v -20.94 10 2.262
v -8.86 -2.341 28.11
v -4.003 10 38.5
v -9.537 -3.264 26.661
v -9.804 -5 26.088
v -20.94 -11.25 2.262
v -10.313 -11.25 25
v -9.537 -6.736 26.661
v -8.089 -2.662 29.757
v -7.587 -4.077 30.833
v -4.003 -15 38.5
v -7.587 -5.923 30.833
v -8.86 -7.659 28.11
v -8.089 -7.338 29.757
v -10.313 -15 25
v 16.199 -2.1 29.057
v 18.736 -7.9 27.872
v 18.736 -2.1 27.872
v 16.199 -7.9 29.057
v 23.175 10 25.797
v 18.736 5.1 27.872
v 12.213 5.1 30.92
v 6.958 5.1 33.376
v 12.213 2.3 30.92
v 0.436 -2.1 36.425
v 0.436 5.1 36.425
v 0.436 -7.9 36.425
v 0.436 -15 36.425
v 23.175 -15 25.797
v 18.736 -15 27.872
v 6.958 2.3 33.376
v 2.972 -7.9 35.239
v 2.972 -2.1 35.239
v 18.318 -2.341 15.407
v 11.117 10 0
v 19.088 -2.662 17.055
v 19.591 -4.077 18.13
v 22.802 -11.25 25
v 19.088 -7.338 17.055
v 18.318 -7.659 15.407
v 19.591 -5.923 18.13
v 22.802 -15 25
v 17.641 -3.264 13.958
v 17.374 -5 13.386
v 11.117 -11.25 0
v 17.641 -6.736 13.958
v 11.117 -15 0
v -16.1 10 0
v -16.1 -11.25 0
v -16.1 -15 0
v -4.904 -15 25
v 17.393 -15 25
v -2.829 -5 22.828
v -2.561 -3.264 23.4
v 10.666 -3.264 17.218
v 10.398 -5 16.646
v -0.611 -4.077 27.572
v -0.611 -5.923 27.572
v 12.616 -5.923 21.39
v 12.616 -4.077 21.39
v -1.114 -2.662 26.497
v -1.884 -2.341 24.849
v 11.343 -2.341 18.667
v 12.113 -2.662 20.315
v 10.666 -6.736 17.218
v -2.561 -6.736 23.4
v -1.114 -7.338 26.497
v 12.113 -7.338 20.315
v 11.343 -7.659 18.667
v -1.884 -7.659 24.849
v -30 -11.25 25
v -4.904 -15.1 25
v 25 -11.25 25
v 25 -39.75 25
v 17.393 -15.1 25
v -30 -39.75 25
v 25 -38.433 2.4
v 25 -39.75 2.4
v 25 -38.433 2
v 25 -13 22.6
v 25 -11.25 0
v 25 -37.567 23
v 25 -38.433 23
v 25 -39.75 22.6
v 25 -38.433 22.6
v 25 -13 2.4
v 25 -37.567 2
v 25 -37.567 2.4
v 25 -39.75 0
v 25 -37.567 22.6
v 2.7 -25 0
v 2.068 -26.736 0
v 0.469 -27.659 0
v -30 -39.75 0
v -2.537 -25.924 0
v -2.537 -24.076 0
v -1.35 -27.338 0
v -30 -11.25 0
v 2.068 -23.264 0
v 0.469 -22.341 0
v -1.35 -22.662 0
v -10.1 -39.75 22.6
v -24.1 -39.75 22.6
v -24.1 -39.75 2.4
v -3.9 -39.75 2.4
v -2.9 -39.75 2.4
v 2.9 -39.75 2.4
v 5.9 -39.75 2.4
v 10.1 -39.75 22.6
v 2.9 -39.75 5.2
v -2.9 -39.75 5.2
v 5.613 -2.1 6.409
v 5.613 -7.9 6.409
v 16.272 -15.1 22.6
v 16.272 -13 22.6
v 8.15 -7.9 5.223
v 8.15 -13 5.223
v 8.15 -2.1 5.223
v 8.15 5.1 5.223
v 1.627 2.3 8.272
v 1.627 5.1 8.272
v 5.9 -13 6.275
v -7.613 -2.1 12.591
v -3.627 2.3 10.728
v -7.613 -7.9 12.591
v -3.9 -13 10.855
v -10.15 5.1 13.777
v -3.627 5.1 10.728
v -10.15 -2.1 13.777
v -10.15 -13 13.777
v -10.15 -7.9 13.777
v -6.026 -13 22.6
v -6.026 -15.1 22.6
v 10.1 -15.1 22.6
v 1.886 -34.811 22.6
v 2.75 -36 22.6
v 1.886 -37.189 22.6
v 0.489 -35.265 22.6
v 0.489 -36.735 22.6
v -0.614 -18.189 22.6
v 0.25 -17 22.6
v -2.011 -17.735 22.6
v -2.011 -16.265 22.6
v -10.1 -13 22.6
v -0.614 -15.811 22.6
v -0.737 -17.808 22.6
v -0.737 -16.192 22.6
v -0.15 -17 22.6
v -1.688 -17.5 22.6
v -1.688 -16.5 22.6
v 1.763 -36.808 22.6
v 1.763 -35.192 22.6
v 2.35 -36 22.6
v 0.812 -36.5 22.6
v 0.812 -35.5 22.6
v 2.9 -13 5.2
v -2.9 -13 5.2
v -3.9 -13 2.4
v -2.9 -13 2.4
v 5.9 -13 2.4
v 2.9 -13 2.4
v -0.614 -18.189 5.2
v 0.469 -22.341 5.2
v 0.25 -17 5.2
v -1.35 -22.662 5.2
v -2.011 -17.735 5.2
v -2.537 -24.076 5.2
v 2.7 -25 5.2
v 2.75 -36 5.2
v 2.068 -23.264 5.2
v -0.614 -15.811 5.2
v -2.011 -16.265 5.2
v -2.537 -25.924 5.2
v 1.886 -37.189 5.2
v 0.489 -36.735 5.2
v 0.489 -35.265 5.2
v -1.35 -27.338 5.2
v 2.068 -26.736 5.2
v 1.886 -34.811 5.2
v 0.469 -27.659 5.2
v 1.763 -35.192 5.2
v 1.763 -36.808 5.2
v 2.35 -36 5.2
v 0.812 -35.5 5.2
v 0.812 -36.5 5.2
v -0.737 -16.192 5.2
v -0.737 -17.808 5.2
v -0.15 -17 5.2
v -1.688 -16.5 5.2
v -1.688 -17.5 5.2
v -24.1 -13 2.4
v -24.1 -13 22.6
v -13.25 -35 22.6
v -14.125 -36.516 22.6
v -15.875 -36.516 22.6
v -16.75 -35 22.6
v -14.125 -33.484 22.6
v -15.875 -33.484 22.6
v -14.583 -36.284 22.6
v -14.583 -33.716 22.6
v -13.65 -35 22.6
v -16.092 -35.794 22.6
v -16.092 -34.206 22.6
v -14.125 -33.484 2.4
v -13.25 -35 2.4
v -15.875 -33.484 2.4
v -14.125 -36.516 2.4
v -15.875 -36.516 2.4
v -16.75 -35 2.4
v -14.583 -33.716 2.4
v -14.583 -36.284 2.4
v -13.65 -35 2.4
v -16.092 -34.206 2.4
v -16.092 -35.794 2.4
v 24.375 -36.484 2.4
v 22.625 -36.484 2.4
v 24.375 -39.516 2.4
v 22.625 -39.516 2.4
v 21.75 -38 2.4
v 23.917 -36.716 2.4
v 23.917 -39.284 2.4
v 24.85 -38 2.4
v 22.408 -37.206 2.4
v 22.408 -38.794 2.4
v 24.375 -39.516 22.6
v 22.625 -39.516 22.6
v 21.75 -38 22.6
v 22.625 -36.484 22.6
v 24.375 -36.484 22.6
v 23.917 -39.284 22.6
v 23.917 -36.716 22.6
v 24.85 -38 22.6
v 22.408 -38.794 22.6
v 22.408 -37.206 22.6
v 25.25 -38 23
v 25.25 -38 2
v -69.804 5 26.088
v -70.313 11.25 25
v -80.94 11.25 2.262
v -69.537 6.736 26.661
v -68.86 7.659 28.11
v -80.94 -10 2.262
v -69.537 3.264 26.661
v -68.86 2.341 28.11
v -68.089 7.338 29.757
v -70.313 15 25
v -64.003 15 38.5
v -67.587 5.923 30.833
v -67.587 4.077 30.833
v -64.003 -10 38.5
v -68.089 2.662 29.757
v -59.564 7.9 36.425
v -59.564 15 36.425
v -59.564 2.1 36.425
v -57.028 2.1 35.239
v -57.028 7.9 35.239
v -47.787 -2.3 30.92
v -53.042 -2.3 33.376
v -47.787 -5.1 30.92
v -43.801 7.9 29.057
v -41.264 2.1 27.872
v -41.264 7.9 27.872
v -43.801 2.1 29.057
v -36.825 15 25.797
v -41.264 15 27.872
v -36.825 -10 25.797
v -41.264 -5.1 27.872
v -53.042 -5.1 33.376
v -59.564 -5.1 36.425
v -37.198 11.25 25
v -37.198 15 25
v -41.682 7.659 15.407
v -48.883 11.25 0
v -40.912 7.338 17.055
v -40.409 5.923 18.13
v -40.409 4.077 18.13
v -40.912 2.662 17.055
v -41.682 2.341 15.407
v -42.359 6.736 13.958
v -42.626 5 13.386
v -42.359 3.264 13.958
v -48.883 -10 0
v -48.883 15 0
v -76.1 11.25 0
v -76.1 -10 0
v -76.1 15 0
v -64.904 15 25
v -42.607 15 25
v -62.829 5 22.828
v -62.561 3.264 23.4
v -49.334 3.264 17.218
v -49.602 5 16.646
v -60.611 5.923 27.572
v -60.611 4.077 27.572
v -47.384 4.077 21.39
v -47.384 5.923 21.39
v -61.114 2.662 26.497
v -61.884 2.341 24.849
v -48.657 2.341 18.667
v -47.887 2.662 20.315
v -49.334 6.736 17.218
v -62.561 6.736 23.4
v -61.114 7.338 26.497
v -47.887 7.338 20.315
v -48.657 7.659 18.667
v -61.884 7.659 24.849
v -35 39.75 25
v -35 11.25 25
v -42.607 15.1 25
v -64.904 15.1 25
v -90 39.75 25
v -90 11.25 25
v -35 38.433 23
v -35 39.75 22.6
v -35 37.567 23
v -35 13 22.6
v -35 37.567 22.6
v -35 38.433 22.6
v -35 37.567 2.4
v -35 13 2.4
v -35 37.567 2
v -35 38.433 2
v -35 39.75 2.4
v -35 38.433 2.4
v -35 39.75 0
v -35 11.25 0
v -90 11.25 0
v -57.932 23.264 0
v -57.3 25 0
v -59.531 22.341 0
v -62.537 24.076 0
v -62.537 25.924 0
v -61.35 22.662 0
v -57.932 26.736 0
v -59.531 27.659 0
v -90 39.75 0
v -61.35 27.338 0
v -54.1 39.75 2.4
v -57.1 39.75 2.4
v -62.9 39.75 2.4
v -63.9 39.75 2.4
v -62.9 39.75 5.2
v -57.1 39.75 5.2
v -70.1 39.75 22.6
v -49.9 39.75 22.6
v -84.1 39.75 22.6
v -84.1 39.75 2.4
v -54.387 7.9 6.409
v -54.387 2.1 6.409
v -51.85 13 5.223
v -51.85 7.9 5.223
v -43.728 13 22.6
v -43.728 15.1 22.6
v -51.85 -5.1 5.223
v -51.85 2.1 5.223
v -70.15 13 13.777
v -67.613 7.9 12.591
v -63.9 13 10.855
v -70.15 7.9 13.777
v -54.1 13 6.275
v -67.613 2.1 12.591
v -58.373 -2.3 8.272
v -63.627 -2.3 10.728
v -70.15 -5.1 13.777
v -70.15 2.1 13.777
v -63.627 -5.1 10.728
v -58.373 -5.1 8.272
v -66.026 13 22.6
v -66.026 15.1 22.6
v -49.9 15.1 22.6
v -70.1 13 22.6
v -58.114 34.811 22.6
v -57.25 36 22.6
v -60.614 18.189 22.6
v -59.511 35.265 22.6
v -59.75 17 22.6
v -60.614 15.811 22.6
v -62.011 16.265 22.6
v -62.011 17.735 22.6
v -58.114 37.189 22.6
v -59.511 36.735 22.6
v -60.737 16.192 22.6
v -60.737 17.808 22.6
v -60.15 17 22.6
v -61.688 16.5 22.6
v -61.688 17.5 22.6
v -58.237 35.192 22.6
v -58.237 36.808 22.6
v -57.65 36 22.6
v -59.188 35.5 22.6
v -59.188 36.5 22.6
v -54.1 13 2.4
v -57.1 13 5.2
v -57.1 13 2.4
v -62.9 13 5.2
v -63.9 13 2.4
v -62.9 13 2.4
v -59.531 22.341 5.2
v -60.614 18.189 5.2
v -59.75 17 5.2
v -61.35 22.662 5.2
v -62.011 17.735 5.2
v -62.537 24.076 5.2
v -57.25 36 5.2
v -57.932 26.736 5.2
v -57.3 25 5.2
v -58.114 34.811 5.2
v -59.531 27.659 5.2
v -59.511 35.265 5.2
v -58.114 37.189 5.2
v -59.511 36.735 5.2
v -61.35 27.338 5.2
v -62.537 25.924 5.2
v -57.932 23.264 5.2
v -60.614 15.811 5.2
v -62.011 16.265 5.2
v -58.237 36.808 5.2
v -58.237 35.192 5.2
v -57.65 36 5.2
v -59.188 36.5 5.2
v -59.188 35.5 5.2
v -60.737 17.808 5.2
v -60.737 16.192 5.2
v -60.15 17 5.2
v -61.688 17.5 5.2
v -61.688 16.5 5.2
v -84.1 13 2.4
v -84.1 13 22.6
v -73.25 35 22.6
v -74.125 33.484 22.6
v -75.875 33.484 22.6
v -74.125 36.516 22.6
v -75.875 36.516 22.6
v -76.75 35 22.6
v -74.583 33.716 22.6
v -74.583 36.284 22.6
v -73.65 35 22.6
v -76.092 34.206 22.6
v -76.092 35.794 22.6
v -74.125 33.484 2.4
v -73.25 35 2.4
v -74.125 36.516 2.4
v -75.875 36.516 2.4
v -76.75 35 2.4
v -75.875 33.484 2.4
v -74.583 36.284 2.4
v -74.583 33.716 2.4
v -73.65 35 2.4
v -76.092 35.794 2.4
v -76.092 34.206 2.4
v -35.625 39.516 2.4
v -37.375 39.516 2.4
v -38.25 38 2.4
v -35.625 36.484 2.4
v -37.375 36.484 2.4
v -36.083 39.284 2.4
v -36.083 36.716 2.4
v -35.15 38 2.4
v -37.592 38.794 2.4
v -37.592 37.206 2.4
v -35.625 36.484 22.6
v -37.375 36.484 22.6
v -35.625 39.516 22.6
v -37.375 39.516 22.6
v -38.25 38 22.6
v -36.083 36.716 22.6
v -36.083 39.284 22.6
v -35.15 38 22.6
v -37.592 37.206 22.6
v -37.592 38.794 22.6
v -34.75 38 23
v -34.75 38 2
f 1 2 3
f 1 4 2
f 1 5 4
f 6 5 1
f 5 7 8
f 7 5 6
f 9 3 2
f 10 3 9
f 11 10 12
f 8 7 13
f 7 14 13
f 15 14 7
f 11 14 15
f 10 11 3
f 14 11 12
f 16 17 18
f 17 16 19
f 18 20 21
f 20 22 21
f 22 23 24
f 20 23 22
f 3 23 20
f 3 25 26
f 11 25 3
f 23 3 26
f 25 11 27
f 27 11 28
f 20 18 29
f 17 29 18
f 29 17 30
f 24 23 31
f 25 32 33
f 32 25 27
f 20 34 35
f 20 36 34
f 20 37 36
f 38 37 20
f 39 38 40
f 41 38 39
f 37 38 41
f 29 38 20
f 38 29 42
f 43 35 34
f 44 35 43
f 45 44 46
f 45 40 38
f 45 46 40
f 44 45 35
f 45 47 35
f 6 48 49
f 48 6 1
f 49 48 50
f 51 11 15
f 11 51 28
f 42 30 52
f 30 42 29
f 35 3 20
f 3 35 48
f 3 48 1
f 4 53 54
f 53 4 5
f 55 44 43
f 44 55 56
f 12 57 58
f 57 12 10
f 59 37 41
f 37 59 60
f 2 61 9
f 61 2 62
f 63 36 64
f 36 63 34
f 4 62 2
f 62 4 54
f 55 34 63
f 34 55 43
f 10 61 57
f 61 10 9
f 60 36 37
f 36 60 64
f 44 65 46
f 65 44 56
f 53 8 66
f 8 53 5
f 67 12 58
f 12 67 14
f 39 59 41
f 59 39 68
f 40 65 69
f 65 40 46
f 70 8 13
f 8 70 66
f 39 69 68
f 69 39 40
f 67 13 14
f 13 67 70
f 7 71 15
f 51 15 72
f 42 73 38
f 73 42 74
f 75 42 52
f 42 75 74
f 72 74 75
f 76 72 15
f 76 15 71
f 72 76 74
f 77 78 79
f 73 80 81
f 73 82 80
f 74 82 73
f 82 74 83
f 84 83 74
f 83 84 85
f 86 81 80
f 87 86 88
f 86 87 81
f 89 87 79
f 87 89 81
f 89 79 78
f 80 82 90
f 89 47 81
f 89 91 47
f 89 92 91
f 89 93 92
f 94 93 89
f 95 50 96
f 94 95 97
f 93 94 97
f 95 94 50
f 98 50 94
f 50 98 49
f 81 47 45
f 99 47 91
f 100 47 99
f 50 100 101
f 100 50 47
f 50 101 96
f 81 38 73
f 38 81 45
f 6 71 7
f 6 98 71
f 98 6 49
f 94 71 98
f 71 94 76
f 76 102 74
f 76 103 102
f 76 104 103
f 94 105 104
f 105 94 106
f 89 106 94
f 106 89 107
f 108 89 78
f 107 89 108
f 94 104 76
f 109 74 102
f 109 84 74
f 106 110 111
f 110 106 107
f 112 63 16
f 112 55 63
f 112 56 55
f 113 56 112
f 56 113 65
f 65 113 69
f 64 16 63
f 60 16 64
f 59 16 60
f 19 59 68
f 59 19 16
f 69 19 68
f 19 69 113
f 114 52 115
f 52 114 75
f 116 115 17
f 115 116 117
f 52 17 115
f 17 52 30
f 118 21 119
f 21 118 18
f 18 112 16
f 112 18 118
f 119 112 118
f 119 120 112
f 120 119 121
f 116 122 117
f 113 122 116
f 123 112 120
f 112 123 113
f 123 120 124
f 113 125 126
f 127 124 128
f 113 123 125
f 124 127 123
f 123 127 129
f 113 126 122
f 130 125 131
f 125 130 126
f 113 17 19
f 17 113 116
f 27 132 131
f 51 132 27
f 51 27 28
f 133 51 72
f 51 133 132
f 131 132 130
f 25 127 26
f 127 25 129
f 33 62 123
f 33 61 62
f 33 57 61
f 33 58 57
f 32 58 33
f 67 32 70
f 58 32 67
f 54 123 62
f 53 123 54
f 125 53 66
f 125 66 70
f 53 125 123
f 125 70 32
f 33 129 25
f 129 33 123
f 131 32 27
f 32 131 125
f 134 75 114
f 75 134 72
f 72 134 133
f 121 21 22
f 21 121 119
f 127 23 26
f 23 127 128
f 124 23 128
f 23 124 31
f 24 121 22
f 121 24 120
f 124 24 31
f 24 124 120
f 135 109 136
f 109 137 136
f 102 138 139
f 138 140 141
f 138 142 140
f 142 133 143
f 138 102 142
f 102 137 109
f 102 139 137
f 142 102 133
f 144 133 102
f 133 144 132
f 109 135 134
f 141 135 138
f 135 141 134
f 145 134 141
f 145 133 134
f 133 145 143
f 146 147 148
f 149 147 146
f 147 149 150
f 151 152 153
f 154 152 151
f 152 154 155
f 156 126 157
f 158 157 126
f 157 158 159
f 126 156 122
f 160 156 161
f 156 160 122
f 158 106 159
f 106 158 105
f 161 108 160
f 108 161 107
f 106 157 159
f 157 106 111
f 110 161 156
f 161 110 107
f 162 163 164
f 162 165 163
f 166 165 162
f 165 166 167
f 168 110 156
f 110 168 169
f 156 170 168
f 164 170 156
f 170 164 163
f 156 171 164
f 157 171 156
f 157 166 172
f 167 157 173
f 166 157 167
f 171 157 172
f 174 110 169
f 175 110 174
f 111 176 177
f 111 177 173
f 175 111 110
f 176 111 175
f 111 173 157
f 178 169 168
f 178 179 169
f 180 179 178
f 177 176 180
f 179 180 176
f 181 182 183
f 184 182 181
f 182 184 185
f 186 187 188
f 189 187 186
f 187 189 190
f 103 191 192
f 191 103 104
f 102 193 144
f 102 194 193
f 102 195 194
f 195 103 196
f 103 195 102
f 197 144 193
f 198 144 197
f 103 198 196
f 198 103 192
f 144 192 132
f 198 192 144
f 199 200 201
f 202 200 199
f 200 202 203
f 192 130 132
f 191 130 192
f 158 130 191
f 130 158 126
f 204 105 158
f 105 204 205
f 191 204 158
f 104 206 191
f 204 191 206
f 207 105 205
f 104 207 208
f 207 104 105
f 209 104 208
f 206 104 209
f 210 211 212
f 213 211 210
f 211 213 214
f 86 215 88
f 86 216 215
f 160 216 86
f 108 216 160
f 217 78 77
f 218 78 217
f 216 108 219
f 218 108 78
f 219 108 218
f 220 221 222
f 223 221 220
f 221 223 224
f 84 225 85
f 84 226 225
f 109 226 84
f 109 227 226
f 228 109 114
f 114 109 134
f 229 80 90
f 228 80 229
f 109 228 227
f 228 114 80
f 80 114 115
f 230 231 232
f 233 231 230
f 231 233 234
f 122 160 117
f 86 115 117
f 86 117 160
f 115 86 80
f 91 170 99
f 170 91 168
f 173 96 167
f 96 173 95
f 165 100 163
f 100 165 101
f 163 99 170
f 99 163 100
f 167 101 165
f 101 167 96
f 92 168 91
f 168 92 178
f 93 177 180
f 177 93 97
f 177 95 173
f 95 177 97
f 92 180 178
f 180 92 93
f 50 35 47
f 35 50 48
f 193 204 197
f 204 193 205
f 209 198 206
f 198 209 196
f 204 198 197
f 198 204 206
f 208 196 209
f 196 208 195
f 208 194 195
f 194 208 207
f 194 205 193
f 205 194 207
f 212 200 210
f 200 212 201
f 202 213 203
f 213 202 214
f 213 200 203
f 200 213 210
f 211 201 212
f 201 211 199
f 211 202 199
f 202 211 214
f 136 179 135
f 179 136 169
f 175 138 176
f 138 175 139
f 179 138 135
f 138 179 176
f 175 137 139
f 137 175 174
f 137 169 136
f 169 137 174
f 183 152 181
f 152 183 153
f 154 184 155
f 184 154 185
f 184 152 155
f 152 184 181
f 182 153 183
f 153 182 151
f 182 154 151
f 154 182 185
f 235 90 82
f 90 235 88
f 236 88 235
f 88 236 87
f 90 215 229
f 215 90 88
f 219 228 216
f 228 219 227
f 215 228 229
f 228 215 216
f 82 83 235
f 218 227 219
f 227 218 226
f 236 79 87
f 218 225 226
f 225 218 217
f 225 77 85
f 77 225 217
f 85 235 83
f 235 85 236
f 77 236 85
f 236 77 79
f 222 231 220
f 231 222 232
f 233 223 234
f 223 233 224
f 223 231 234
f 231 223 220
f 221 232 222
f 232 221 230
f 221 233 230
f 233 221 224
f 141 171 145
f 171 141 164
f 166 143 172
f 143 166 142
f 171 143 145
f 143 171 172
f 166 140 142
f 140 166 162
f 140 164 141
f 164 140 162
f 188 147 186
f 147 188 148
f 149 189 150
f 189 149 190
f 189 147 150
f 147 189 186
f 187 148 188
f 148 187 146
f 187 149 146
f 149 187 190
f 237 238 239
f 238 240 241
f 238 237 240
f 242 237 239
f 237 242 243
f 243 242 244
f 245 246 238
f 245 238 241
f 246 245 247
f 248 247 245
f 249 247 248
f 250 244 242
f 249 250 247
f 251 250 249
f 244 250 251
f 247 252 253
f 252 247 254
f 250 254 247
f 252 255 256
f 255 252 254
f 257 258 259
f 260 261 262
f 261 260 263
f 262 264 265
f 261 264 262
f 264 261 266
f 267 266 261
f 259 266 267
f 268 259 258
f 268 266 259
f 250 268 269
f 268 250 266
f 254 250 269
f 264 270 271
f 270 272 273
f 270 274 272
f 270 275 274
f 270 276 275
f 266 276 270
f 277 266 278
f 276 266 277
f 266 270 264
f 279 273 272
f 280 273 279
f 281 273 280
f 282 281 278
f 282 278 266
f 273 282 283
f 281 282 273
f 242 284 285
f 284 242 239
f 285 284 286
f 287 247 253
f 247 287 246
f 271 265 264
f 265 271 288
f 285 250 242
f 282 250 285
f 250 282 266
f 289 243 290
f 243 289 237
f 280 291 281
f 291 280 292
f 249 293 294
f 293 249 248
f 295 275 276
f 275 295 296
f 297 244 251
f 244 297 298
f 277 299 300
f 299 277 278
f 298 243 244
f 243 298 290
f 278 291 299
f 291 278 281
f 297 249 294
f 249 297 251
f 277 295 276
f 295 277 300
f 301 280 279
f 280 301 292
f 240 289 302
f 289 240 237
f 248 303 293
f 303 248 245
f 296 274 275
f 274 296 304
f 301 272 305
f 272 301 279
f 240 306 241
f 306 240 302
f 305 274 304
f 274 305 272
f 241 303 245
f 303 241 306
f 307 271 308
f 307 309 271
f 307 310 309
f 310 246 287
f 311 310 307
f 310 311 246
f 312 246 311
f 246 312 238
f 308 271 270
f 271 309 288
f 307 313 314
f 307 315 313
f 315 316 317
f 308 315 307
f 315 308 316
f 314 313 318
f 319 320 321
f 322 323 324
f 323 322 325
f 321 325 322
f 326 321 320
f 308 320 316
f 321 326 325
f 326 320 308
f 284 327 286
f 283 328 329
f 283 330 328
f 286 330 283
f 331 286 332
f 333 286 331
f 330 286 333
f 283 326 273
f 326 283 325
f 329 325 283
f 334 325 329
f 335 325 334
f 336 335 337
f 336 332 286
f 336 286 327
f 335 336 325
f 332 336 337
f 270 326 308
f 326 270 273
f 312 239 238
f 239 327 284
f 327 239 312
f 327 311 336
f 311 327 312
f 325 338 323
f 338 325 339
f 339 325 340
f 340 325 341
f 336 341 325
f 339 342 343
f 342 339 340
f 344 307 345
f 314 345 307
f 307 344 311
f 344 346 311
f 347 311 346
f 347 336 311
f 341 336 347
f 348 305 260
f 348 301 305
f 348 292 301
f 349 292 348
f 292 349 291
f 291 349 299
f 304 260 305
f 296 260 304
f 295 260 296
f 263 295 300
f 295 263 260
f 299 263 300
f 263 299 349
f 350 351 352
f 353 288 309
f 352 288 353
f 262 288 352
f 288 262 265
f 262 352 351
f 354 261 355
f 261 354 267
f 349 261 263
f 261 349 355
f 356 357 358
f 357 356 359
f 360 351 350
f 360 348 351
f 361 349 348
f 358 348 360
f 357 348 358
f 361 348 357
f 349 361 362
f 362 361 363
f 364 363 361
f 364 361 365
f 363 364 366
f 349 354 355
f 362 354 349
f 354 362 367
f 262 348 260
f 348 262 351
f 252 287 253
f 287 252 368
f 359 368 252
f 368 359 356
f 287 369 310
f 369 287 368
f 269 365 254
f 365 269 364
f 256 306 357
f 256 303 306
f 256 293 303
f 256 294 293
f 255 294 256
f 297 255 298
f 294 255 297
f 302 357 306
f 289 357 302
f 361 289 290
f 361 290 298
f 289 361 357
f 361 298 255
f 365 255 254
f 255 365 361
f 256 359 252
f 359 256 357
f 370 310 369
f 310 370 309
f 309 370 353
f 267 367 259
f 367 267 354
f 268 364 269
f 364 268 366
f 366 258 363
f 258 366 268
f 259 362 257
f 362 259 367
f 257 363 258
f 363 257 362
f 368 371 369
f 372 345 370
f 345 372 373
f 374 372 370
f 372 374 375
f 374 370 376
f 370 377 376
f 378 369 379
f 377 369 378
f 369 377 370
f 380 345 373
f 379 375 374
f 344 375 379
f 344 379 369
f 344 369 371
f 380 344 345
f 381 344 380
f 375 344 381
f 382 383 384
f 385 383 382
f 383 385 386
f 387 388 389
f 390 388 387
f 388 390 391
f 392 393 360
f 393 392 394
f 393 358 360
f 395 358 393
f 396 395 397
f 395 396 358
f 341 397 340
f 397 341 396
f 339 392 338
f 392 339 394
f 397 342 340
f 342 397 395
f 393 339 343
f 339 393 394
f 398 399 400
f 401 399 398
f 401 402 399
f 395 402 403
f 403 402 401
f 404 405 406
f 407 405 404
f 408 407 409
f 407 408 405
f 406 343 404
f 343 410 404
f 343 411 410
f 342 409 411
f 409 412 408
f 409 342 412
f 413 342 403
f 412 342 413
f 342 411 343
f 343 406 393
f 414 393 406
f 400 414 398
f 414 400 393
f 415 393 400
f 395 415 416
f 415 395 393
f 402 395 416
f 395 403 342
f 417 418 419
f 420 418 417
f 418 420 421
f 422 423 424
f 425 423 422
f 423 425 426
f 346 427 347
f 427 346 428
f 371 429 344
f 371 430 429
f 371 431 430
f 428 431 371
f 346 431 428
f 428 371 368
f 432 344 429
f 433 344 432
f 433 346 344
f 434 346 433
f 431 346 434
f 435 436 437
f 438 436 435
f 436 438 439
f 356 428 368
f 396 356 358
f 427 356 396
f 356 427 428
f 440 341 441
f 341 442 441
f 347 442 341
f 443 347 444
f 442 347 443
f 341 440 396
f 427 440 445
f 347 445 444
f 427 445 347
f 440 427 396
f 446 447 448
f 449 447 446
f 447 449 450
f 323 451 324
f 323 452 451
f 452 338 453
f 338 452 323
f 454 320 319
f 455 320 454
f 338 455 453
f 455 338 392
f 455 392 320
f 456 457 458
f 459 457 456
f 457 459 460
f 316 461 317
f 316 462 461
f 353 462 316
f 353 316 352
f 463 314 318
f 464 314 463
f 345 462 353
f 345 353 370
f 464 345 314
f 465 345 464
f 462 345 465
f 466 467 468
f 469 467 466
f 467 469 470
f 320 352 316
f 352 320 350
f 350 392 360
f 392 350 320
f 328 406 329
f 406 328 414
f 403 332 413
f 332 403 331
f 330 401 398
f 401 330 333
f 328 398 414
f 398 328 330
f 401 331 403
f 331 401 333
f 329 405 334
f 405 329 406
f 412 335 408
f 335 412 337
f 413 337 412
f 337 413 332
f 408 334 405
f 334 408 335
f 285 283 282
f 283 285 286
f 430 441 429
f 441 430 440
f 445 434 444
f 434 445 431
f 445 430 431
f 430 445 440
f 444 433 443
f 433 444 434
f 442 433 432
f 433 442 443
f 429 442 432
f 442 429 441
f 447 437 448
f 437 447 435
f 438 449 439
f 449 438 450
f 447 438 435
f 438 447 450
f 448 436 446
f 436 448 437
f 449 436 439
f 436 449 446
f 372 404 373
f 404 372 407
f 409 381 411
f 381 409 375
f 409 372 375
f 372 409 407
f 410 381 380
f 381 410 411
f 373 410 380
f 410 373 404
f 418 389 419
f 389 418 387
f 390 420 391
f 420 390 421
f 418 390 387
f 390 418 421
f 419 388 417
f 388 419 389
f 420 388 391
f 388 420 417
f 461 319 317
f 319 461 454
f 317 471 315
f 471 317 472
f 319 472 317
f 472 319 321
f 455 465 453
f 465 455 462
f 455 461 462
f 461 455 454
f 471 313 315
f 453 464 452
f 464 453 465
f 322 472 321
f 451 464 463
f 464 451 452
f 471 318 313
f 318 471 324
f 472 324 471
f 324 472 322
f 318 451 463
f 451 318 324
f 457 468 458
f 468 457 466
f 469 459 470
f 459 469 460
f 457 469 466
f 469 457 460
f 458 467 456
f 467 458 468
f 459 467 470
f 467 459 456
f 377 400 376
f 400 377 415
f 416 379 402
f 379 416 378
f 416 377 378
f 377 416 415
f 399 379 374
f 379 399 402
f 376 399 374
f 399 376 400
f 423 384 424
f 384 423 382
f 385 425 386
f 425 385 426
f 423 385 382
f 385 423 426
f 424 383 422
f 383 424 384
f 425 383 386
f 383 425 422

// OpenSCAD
// file: inc/functions.scad
// PRUSA iteration3
// Functions used in many files
// GNU GPL v3
// Josef Průša <josefprusa@me.com>
// Václav 'ax' Hůla <axtheb@gmail.com>
// Vlnofka <>
// http://www.reprap.org/wiki/Prusa_Mendel
// http://github.com/josefprusa/Prusa3


module nut(d,h,horizontal=true){
    cornerdiameter =  (d / 2) / cos (180 / 6);
    cylinder(h = h, r = cornerdiameter, $fn = 6);
    if(horizontal){
        for(i = [1:6]){
            rotate([0,0,60*i]) translate([-cornerdiameter-0.2,0,0]) rotate([0,0,-45]) cube([2,2,h]);
        }
    }
}

module fillet(radius, height=100, $fn=0) {
    //this creates acutal fillet
    translate([-radius, -radius, -height / 2 - 0.02]) difference() {
        cube([radius * 2, radius * 2, height + 0.04]);
        if ($fn == 0 && (radius == 2 || radius == 3 || radius == 4)) {
            cylinder(r=radius, h=height + 0.04, $fn=4 * radius);
        } else {
            cylinder(r=radius, h=height + 0.04, $fn=$fn);
        }

    }
}

module cube_fillet(size, radius=-1, vertical=[3,3,3,3], top=[0,0,0,0], bottom=[0,0,0,0], center=false, $fn=0){
    //
    if (use_fillets == 1) {
        if (center) {
            cube_fillet_inside(size, radius, vertical, top, bottom, $fn);
        } else {
            translate([size[0]/2, size[1]/2, size[2]/2])
                cube_fillet_inside(size, radius, vertical, top, bottom, $fn);
        }
    } else {
        if (use_fillets == 2) {
            if (center) {
                cube_fillet_inside(size, radius, vertical, top, bottom, 4);
            } else {
                translate([size[0]/2, size[1]/2, size[2]/2])
                    cube_fillet_inside(size, radius, vertical, top, bottom, 4);
            }

        } else {
            cube(size, center);
        }
    }

}

module cube_negative_fillet(size, radius=-1, vertical=[3,3,3,3], top=[0,0,0,0], bottom=[0,0,0,0], $fn=0){

    j=[1,0,1,0];

    for (i=[0:3]) {
        if (radius > -1) {
            rotate([0, 0, 90*i]) translate([size[1-j[i]]/2, size[j[i]]/2, 0]) fillet(radius, size[2], $fn=$fn);
        } else {
            rotate([0, 0, 90*i]) translate([size[1-j[i]]/2, size[j[i]]/2, 0]) fillet(vertical[i], size[2], $fn=$fn);
        }
        rotate([90*i, -90, 0]) translate([size[2]/2, size[j[i]]/2, 0 ]) fillet(top[i], size[1-j[i]], $fn=$fn);
        rotate([90*(4-i), 90, 0]) translate([size[2]/2, size[j[i]]/2, 0]) fillet(bottom[i], size[1-j[i]], $fn=$fn);

    }
}

module cube_fillet_inside(size, radius=-1, vertical=[3,3,3,3], top=[0,0,0,0], bottom=[0,0,0,0], $fn=0){
    //makes CENTERED cube with round corners
    // if you give it radius, it will fillet vertical corners.
    //othervise use vertical, top, bottom arrays
    //when viewed from top, it starts in upper right corner (+x,+y quadrant) , goes counterclockwise
    //top/bottom fillet starts in direction of Y axis and goes CCW too


    if (radius == 0) {
        cube(size, center=true);
    } else {
        difference() {
            cube(size, center=true);
            cube_negative_fillet(size, radius, vertical, top, bottom, $fn);
        }
    }
}


module nema17(places=[1,1,1,1], size=15.5, h=10, holes=false, shadow=false, $fn=24){
    for (i=[0:3]) {
        if (places[i] == 1) {
            rotate([0, 0, 90*i]) translate([size, size, 0]) {
                if (holes) {
                    rotate([0, 0, -90*i])  translate([0,0,-10]) screw(r=1.7, slant=false, head_drop=13, $fn=$fn, h=h+12);
                } else {
                    rotate([0, 0, -90*i]) cylinder(h=h, r=5.5, $fn=$fn);
                }
            }
        }
    }
    if (shadow != false) {
        %translate ([0, 0, shadow+21+3]) cube([42,42,42], center = true);
    //flange
        %translate ([0, 0, shadow+21+3-21-1]) cylinder(r=11,h=2, center = true, $fn=20);
    //shaft
        %translate ([0, 0, shadow+21+3-21-7]) cylinder(r=2.5,h=14, center = true);
    }
}

module screw(h=20, r=2, r_head=3.5, head_drop=0, slant=i_am_box, poly=false, $fn=0){
    //makes screw with head
    //for substraction as screw hole
    if (poly) {
        cylinder_poly(h=h, r=r, $fn=$fn);
    } else {
        cylinder(h=h, r=r, $fn=$fn);
    }
    if (slant) {
        translate([0, 0, head_drop-0.01]) cylinder(h=r_head, r2=0, r1=r_head, $fn=$fn);
    }

    if (head_drop > 0) {
        translate([0, 0, -0.01]) cylinder(h=head_drop+0.01, r=r_head, $fn=$fn);
    }
}

module plate_screw(long=0) {
    if (i_am_box == 0) {
        translate([0, 0, -long]) screw(head_drop=14 + long, h=30 + long, r_head=3.6, r=1.7, $fn=24, slant=false);
    } else {
        translate([0, 0, -2 - long]) screw(head_drop=14 + long, h=30 + long, r_head=4.5, r=2, $fn=24, slant=true);
    }
}

//radius of the idler assembly (to surface that touches belt, ignoring guide walls)
function idler_assy_r_inner(idler_bearing) = (idler_bearing[0] / 2) + (6 * single_wall_width + 0.2) * idler_bearing[3];
//outer radius of the idler assembly (to smooth side of belt) 
function idler_assy_r_outer(idler_bearing) = idler_assy_r_inner(idler_bearing) + belt_thickness + 1;

module ext2020(l=20, teeth = [1, 1, 1, 1], depth=1, tolerance=0.2) {
  scale([1,1,1])translate([0,0,l/2])
  difference(){
    cube([20+tolerance,20+tolerance,l], center=true);
    scale([1,1,1]) {
        if (teeth[0] == 1)
        translate([10-(depth+0.5)+tolerance,0,0])cube([2+depth-tolerance,6-tolerance,l], center=true);
        if (teeth[1] == 1)
        translate([-10+(depth+0.5)-tolerance,0,0])cube([2+depth-tolerance,6-tolerance,l], center=true);
    }
    scale([1,1,1]) {
        if (teeth[2] == 1)
        translate([0,10-(depth+0.5)+tolerance,0])cube([6-tolerance,2-tolerance+depth,l], center=true);
        if (teeth[3] == 1)
        translate([0,-10+(depth+0.5)-tolerance,0])cube([6-tolerance,2-tolerance+depth,l], center=true);
      }
  }
}
/* 
  Cube with rounded edges.
*/
module roundcube(dims, r = 3, center = false)
{
  hull() {
    if (center)
    {
      translate([r -dims[0]/2,r - dims[1]/2,-dims[2]/2]) cylinder(r=r, h=dims[2], $fn=60);
      translate([r -dims[0]/2,(dims[1]/2)-(r),-dims[2]/2]) cylinder(r=r, h=dims[2], $fn=60);
      translate([dims[0]/2-(r),(dims[1]/2)-(r),-dims[2]/2]) cylinder(r=r, h=dims[2], $fn=60);
      translate([dims[0]/2-(r),r - (dims[1]/2),-dims[2]/2]) cylinder(r=r, h=dims[2], $fn=60);

    } else {
      translate([r,r,0]) cylinder(r=r, h=dims[2], $fn=60);
      translate([r,dims[1]-(r),0]) cylinder(r=r, h=dims[2], $fn=60);
      translate([dims[0]-(r),dims[1]-(r),0]) cylinder(r=r, h=dims[2], $fn=60);
      translate([dims[0]-(r),r,0]) cylinder(r=r, h=dims[2], $fn=60);
    }
  }
}

module idler_assy(idler_bearing = [22, 7, 8, 1]) {

    //bearing axle
    translate([0,0,-1]) cylinder(h = 120, r=(idler_bearing[2] + 1) / 2, $fn=small_hole_segments, center=true);
    //bearing shadow
    %cylinder(h = idler_bearing[1], r=idler_bearing[0]/2, center=true);
    //belt shadow
    %cylinder(h = belt_width, r=idler_assy_r_outer(idler_bearing), center=true);

    cylinder(h = idler_width + 1, r=idler_assy_r_outer(idler_bearing) + 0.5, center=true);
}

module belt(len, side = 0){
    //belt. To be substracted from model
    //len is in +Z, smooth side in +X, Y centered
    translate([-0.5, 0, 0]) maketeeth(len);
    translate([0, -4.5, -0.01]) cube([belt_thickness, 9, len + 0.02]);
    if (side != 0) {
    translate([0, -4.5 + side, -0.01]) cube_fillet([belt_thickness, 9, len + 0.02], vertical = [3, 0, 0, 0]);
    }
}


module maketeeth(len){
    //Belt teeth. 
    for (i = [0 : len / belt_tooth_distance]) {
        translate([0, 0, i * belt_tooth_distance]) cube([2, 9, belt_tooth_distance * belt_tooth_ratio], center = true);
    }
}
// file: inc/metric.scad
// PRUSA iteration3
// Default metric sizes
// GNU GPL v3
// Josef Průša <josefprusa@me.com>
// http://www.reprap.org/wiki/Prusa_Mendel
// http://github.com/josefprusa/Prusa3

// DONT CHANGE THIS FILE! ALTER VALUES IN CONFIGURATION.SCAD INSTEAD

// RODS

threaded_rod_diameter = 8.7;
threaded_rod_diameter_horizontal = 8.7;
smooth_bar_diameter = 8;
smooth_bar_diameter_horizontal = 8.5;

// Nuts and bolts


m8_diameter = 9;
//iso4032 says Width across corners = 14.38
m8_nut_diameter = 14.1;

m5_diameter = 5.7;
//iso5032 says 7.66
m5_nut_diameter = 10;
m5_nut_diameter_horizontal = 10.15;


m4_diameter = 4.7;
//iso4032 says 7.66
m4_nut_diameter = 7.6;
m4_nut_diameter_horizontal = 8.15;

m3_diameter = 3.6;
//iso4032 says 6.01
m3_nut_diameter = 5.5; // maximum tolerance
m3_nut_diameter_horizontal = 6.8;
m3_washer_diameter = 6.9;

// Motors

motor_shaft = 5.5;
// main file
include<inc/metric.scad>;
include<MCAD/nuts_and_bolts.scad>;
use<inc/functions.scad>;

//length: 179mm (??) - 7mm fudge = 172mm
//height: 368mm

//hyp: 406.21177
//lower-angle: 63.83953
//upper-angle: 24.986961

y1_length = 179;
y2_length = (485+40 - 179);
z_height = 368;
fudge_y=7;
fudge_z=0;
hyp1 = sqrt(pow((y1_length-fudge_y),2) + pow(z_height-fudge_z,2));
hyp2 = sqrt(pow((y2_length-fudge_y),2) + pow(z_height-fudge_z,2));

angles1 = [acos(y1_length/hyp1), 90, acos(z_height/hyp1)];
angles2 = [acos(y2_length/hyp2), 90, acos(z_height/hyp2)];
module support_cyl(r, h)
{
  difference() {
    cylinder(r=r, h=h);
    cylinder(r=r-0.4, h=h);
  }
}
echo("Your short bracing extrusion needs to be " );
echo(hyp1);
echo("mm long.");
echo("Your long bracing extrusion needs to be " );
echo(hyp2);
echo("mm long.");
echo("Lower short angle: ");
echo(angles1[2]);
echo("upper short angle: ");
echo(angles1[0]);
translate([0,0,12.5]) {
  lower_bracket(angles1);
  translate([-60,0,0])mirror([0,1,0])lower_bracket(angles1);
}
*translate([0,70,0]) {
  lower_bracket(angles2);
  translate([-60,0,0])mirror([0,1,0])lower_bracket(angles2);
}
*translate([0,-90,15]) 
{
  rotate([0,-90,0])upper_bracket_single(angles1, fudge_y);
  translate([0,33,0])mirror([0,1,0]) rotate([0,-90,0])
  upper_bracket_single(angles1, fudge_y);
}

module upper_bracket_single(angle1, fudge, support = true)
{
{
  difference() 
  {
    union() 
    {
      translate([0,0,-5])cube([30,30,60],center=true);
    }
    translate([0,0,10])
    rotate([0,angles1[0],0])
    {
      ext2020(l=40, teeth=[0,1,1,1]);
      translate([0,30,8])rotate([90,0,0])cylinder(r=5/2 + 0.1, h=60);
    }
    translate([-25,0,-20])rotate([0,90,0])ext2020(l=45,teeth=[0,0,0,0]);
    translate([-25,-15,-20])rotate([0,90,0])ext2020(l=45,teeth=[0,0,0,0]);
    translate([0,0,-40])rotate([0,0,90])cylinder(r=5/2 + 0.1, h=20); 
    translate([0,12,-20])rotate([90,0,0]) boltHole(size=5, length=10);
  }
  }
}

module upper_bracket(angle1, angle2, fudge, support = true)
{
  difference() 
  {
    union() 
    {

      translate([0,0,-9.3])rotate([0,0,90])import("src/Z_Top_Compact_-_2x.stl");
      translate([-17.5,0,0])cube([15,25,25], center=true);
      translate([17.5,0,0])cube([15,25,25], center=true);

      translate([20+fudge, 0, 0]) rotate([0,angle1[0],0]) cube([25,25,45], center=true);
      translate([-(20+fudge), 0, 0]) rotate([0,-angle2[0],0]) cube([25,25,45], center=true);

    }
    ext2020(l=20);
    translate([20+fudge, 0, 0]) rotate([0,angle1[0],0]) 
    {
      ext2020(l=40, teeth=[1,0,1,1] );
    }
    translate([-(20+fudge), 0, 0]) rotate([0,-angle2[0],0]) {
      ext2020(l=40, teeth=[0,1,1,1]);
    }
    translate([0, 0, 0]) rotate([0,angle1[0],0]) 
      translate([-25,15,-29]) rotate([90, 0, 0])cylinder(r=5/2 + 0.1, h=30);
    translate([0, 0, 0]) rotate([0,-angle2[0],0]) 
      translate([30,15,-24]) rotate([90, 0, 0])cylinder(r=5/2 + 0.1, h=30);

    ext2020(l=20);
    translate([0,0,-8])cube([5,5,30], center=true);

    translate([-100,-100,-32.5])cube([200,200,20]);
  }
}

module lower_bracket(angles, support=true, stacked=false) 
{
  difference() {
    union() {
      rotate([0,90,0]) 
        translate([0,-25.5,-2.5])cube([25,28.5,55], center=true);
      if (stacked) {
        translate([0,-22,30])
        rotate([0,angles[2],0]) 
          difference()
          { 
            translate([0,-3.5,5])cube([30,28.5,40], center=true);
            translate([-15,-2.0,14])rotate([0,90,0])cylinder(r=5/2 + 0.2, h=30);
          }
        translate([-5,-25.5,5])cube([30,28.5,40], center=true);
      } else {
        translate([-1,0,-3])
        rotate([0,angles[2],0]) 
          difference()
          { 
            translate([0,-2.5,5])cube([30,25,40], center=true);
            translate([-15,-5,14])rotate([0,90,0])cylinder(r=5/2 + 0.2, h=30);
          }
      }
    }
    if (stacked) {
      translate([0,-22,30])
      rotate([0,angles[2],0]) 
          translate([0,-2,0])ext2020(l=50, teeth=[1,1,1,1]);
    } else {
      translate([-1,0,-3])
    rotate([0,angles[2],0]) 
          translate([0,-5,0])ext2020(l=50, teeth=[1,1,1,0]);
    }
    translate([0,-13,0])rotate([90,0,0])ext2020(l=50, teeth=[0,0,0,1]);
    translate([-14,-13,0])rotate([90,0,0])ext2020(l=50, teeth=[0,0,0,0]);
    translate([16,-13,0])rotate([90,0,0])ext2020(l=50, teeth=[0,0,0,0]);
    translate([0,-25,-14])cylinder(r=5/2 + 0.2, h=20);
    translate([-100,-100,-32.5])cube([200,200,20]);
  }
  if (support) {
    translate([-15,-35,-10.5])support_cyl(r=1.75, h=21);
    translate([1.5,-36,-10.5])support_cyl(r=1.25, h=21);
    translate([23.5,-38,-10.5])support_cyl(r=1.75, h=21);
    translate([-1.0,-17,-10.5])support_cyl(r=1.25, h=21);
  }
}
